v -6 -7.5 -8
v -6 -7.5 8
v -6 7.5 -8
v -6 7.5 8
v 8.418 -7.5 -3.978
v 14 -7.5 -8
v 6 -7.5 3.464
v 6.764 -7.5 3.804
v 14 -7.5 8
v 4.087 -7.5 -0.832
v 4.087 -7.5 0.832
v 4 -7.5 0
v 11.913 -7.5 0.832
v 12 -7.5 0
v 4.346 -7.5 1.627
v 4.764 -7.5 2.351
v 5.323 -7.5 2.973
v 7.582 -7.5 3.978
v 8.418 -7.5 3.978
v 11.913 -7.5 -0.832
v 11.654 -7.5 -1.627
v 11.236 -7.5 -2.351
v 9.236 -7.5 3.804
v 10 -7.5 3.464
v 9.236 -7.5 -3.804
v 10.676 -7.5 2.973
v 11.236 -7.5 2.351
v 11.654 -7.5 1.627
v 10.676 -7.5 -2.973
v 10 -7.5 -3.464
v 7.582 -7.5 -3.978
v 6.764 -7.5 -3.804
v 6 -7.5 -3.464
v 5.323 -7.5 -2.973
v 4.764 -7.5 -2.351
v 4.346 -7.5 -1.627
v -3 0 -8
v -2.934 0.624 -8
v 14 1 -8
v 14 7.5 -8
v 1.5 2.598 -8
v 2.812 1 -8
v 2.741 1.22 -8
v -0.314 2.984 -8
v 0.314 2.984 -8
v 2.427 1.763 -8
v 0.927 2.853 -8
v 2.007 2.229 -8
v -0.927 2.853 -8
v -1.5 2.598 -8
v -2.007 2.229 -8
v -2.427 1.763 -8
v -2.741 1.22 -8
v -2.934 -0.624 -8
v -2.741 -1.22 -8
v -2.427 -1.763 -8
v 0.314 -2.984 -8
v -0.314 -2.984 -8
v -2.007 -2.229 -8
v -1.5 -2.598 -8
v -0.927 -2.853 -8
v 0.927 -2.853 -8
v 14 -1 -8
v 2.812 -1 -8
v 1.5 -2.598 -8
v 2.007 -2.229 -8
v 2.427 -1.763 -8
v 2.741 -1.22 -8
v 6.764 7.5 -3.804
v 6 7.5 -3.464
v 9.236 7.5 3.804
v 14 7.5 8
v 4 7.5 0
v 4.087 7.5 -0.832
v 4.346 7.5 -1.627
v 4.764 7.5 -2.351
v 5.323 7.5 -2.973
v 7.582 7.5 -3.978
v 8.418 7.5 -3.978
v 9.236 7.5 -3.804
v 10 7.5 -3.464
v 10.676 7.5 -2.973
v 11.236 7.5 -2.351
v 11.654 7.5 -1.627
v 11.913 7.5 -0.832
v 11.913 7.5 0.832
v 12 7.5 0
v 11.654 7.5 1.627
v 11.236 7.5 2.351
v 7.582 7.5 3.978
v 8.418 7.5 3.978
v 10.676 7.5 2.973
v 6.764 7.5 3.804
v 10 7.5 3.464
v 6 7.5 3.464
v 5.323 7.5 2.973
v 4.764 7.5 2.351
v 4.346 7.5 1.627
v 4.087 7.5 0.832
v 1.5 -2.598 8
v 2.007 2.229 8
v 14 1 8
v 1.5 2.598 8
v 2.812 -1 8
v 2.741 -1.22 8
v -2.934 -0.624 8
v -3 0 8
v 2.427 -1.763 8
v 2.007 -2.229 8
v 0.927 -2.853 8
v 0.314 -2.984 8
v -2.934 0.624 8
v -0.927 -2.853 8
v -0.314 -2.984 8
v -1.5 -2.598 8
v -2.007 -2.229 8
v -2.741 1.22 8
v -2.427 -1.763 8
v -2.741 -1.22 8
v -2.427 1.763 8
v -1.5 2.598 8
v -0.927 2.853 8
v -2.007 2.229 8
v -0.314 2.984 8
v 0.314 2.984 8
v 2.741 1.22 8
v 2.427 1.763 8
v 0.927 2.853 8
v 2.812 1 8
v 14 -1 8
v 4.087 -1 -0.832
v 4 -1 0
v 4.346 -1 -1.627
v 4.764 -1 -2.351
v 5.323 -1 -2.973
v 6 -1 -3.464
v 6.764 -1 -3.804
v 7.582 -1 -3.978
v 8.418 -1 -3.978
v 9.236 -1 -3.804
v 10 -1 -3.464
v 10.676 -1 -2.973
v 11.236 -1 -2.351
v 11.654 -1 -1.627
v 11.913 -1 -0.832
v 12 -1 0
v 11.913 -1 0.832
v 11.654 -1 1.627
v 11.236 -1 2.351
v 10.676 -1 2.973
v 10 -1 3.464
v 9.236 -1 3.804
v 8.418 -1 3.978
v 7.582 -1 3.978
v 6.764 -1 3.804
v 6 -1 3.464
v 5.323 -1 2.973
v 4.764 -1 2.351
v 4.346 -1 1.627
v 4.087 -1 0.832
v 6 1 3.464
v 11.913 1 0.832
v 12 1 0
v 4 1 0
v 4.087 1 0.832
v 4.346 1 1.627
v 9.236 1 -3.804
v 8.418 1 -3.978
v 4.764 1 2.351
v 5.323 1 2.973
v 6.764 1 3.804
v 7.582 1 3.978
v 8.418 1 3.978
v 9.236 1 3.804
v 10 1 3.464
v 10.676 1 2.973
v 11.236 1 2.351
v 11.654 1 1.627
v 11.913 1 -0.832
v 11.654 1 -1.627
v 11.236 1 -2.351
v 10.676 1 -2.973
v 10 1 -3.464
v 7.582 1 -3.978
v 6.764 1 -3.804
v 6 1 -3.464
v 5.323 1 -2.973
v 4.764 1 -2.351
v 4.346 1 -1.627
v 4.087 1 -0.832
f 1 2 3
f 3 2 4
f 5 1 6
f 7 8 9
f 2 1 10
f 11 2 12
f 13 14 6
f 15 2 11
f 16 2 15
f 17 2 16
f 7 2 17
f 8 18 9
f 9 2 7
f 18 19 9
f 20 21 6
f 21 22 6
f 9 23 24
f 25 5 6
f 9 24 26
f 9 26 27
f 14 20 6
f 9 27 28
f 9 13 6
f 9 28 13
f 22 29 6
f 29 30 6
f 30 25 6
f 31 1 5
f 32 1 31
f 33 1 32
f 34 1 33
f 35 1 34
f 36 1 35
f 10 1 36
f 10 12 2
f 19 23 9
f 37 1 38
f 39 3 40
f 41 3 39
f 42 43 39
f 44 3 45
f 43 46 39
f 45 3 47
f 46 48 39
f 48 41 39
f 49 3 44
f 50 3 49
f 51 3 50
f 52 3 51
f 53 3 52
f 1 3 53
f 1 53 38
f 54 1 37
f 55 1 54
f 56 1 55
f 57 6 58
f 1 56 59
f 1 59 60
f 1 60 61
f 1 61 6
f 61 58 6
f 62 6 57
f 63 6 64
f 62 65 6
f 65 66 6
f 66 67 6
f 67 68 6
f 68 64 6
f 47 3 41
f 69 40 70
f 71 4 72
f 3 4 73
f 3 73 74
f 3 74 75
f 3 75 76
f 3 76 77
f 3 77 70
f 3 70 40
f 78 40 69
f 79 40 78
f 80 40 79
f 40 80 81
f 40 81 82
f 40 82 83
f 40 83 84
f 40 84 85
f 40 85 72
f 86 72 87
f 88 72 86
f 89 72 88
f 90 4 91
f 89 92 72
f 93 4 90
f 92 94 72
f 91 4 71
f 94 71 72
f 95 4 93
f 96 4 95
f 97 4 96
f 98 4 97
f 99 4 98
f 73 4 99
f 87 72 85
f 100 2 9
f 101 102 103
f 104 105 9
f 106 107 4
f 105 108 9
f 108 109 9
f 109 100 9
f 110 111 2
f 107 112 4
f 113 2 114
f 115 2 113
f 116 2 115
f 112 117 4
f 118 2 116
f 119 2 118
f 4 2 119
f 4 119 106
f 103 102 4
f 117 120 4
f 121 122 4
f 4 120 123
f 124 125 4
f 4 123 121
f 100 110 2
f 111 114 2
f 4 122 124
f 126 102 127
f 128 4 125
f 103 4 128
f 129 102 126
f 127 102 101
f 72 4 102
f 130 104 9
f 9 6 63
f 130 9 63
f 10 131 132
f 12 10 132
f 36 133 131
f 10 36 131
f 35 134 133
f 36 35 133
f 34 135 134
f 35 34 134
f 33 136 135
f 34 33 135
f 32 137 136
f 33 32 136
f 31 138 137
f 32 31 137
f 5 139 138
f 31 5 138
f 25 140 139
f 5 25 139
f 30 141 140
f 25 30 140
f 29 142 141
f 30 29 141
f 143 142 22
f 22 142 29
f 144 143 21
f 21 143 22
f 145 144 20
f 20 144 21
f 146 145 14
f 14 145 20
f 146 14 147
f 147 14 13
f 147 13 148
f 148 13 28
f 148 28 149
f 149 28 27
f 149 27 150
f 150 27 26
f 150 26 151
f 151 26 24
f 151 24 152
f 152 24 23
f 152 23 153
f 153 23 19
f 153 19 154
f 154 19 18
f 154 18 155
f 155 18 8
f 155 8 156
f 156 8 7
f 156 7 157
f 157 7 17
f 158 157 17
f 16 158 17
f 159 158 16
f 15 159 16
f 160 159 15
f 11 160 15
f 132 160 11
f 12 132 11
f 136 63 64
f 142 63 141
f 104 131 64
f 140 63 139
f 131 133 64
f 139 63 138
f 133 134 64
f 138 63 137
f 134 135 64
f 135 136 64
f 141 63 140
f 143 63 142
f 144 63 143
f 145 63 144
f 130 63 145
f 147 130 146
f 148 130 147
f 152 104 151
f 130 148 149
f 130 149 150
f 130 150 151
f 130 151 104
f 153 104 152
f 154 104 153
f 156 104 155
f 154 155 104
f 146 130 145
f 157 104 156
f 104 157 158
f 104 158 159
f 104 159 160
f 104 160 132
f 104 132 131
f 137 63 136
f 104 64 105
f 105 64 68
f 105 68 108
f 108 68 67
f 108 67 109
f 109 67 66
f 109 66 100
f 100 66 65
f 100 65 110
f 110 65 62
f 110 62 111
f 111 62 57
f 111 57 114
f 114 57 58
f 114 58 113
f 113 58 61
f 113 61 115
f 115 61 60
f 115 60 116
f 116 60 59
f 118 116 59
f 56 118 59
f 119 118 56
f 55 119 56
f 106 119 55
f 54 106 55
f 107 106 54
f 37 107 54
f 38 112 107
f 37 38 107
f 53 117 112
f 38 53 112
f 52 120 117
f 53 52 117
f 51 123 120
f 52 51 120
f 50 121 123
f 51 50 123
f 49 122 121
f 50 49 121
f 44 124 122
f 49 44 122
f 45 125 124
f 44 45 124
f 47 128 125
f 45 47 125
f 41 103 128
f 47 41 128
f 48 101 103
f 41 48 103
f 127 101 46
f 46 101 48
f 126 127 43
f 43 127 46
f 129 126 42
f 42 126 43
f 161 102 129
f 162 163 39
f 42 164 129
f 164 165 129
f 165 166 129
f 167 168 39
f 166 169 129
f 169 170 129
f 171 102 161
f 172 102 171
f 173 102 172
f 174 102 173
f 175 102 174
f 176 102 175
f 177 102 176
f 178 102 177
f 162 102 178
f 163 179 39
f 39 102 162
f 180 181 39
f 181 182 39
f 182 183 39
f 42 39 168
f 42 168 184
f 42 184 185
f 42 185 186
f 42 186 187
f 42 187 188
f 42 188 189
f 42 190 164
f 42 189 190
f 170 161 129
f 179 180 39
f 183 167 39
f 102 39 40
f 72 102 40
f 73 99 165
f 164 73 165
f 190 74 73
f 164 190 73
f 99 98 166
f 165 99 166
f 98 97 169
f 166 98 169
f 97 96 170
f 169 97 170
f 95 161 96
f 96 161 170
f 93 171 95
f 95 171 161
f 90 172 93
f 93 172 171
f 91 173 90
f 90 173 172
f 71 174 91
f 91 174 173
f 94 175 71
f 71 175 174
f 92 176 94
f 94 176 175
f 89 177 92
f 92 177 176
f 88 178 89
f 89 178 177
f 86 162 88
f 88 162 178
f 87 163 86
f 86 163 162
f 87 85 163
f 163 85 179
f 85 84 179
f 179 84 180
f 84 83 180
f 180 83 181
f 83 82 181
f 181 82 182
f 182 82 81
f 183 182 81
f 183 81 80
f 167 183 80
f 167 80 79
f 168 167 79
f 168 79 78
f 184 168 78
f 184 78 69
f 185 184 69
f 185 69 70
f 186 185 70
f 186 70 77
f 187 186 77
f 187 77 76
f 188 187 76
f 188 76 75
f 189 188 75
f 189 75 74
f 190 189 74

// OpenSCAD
difference()
{
translate([-6,-7.5,-8])
cube([20,15,16]);

translate([0,0,0])
cylinder(r=3,h=20,center=true,$fn=30);

translate([8,0,0])
rotate([90,0,0])
cylinder(r=4,h=20,center=true,$fn=30);

translate([0,-1,-15])
cube([30,2,30]);
}
